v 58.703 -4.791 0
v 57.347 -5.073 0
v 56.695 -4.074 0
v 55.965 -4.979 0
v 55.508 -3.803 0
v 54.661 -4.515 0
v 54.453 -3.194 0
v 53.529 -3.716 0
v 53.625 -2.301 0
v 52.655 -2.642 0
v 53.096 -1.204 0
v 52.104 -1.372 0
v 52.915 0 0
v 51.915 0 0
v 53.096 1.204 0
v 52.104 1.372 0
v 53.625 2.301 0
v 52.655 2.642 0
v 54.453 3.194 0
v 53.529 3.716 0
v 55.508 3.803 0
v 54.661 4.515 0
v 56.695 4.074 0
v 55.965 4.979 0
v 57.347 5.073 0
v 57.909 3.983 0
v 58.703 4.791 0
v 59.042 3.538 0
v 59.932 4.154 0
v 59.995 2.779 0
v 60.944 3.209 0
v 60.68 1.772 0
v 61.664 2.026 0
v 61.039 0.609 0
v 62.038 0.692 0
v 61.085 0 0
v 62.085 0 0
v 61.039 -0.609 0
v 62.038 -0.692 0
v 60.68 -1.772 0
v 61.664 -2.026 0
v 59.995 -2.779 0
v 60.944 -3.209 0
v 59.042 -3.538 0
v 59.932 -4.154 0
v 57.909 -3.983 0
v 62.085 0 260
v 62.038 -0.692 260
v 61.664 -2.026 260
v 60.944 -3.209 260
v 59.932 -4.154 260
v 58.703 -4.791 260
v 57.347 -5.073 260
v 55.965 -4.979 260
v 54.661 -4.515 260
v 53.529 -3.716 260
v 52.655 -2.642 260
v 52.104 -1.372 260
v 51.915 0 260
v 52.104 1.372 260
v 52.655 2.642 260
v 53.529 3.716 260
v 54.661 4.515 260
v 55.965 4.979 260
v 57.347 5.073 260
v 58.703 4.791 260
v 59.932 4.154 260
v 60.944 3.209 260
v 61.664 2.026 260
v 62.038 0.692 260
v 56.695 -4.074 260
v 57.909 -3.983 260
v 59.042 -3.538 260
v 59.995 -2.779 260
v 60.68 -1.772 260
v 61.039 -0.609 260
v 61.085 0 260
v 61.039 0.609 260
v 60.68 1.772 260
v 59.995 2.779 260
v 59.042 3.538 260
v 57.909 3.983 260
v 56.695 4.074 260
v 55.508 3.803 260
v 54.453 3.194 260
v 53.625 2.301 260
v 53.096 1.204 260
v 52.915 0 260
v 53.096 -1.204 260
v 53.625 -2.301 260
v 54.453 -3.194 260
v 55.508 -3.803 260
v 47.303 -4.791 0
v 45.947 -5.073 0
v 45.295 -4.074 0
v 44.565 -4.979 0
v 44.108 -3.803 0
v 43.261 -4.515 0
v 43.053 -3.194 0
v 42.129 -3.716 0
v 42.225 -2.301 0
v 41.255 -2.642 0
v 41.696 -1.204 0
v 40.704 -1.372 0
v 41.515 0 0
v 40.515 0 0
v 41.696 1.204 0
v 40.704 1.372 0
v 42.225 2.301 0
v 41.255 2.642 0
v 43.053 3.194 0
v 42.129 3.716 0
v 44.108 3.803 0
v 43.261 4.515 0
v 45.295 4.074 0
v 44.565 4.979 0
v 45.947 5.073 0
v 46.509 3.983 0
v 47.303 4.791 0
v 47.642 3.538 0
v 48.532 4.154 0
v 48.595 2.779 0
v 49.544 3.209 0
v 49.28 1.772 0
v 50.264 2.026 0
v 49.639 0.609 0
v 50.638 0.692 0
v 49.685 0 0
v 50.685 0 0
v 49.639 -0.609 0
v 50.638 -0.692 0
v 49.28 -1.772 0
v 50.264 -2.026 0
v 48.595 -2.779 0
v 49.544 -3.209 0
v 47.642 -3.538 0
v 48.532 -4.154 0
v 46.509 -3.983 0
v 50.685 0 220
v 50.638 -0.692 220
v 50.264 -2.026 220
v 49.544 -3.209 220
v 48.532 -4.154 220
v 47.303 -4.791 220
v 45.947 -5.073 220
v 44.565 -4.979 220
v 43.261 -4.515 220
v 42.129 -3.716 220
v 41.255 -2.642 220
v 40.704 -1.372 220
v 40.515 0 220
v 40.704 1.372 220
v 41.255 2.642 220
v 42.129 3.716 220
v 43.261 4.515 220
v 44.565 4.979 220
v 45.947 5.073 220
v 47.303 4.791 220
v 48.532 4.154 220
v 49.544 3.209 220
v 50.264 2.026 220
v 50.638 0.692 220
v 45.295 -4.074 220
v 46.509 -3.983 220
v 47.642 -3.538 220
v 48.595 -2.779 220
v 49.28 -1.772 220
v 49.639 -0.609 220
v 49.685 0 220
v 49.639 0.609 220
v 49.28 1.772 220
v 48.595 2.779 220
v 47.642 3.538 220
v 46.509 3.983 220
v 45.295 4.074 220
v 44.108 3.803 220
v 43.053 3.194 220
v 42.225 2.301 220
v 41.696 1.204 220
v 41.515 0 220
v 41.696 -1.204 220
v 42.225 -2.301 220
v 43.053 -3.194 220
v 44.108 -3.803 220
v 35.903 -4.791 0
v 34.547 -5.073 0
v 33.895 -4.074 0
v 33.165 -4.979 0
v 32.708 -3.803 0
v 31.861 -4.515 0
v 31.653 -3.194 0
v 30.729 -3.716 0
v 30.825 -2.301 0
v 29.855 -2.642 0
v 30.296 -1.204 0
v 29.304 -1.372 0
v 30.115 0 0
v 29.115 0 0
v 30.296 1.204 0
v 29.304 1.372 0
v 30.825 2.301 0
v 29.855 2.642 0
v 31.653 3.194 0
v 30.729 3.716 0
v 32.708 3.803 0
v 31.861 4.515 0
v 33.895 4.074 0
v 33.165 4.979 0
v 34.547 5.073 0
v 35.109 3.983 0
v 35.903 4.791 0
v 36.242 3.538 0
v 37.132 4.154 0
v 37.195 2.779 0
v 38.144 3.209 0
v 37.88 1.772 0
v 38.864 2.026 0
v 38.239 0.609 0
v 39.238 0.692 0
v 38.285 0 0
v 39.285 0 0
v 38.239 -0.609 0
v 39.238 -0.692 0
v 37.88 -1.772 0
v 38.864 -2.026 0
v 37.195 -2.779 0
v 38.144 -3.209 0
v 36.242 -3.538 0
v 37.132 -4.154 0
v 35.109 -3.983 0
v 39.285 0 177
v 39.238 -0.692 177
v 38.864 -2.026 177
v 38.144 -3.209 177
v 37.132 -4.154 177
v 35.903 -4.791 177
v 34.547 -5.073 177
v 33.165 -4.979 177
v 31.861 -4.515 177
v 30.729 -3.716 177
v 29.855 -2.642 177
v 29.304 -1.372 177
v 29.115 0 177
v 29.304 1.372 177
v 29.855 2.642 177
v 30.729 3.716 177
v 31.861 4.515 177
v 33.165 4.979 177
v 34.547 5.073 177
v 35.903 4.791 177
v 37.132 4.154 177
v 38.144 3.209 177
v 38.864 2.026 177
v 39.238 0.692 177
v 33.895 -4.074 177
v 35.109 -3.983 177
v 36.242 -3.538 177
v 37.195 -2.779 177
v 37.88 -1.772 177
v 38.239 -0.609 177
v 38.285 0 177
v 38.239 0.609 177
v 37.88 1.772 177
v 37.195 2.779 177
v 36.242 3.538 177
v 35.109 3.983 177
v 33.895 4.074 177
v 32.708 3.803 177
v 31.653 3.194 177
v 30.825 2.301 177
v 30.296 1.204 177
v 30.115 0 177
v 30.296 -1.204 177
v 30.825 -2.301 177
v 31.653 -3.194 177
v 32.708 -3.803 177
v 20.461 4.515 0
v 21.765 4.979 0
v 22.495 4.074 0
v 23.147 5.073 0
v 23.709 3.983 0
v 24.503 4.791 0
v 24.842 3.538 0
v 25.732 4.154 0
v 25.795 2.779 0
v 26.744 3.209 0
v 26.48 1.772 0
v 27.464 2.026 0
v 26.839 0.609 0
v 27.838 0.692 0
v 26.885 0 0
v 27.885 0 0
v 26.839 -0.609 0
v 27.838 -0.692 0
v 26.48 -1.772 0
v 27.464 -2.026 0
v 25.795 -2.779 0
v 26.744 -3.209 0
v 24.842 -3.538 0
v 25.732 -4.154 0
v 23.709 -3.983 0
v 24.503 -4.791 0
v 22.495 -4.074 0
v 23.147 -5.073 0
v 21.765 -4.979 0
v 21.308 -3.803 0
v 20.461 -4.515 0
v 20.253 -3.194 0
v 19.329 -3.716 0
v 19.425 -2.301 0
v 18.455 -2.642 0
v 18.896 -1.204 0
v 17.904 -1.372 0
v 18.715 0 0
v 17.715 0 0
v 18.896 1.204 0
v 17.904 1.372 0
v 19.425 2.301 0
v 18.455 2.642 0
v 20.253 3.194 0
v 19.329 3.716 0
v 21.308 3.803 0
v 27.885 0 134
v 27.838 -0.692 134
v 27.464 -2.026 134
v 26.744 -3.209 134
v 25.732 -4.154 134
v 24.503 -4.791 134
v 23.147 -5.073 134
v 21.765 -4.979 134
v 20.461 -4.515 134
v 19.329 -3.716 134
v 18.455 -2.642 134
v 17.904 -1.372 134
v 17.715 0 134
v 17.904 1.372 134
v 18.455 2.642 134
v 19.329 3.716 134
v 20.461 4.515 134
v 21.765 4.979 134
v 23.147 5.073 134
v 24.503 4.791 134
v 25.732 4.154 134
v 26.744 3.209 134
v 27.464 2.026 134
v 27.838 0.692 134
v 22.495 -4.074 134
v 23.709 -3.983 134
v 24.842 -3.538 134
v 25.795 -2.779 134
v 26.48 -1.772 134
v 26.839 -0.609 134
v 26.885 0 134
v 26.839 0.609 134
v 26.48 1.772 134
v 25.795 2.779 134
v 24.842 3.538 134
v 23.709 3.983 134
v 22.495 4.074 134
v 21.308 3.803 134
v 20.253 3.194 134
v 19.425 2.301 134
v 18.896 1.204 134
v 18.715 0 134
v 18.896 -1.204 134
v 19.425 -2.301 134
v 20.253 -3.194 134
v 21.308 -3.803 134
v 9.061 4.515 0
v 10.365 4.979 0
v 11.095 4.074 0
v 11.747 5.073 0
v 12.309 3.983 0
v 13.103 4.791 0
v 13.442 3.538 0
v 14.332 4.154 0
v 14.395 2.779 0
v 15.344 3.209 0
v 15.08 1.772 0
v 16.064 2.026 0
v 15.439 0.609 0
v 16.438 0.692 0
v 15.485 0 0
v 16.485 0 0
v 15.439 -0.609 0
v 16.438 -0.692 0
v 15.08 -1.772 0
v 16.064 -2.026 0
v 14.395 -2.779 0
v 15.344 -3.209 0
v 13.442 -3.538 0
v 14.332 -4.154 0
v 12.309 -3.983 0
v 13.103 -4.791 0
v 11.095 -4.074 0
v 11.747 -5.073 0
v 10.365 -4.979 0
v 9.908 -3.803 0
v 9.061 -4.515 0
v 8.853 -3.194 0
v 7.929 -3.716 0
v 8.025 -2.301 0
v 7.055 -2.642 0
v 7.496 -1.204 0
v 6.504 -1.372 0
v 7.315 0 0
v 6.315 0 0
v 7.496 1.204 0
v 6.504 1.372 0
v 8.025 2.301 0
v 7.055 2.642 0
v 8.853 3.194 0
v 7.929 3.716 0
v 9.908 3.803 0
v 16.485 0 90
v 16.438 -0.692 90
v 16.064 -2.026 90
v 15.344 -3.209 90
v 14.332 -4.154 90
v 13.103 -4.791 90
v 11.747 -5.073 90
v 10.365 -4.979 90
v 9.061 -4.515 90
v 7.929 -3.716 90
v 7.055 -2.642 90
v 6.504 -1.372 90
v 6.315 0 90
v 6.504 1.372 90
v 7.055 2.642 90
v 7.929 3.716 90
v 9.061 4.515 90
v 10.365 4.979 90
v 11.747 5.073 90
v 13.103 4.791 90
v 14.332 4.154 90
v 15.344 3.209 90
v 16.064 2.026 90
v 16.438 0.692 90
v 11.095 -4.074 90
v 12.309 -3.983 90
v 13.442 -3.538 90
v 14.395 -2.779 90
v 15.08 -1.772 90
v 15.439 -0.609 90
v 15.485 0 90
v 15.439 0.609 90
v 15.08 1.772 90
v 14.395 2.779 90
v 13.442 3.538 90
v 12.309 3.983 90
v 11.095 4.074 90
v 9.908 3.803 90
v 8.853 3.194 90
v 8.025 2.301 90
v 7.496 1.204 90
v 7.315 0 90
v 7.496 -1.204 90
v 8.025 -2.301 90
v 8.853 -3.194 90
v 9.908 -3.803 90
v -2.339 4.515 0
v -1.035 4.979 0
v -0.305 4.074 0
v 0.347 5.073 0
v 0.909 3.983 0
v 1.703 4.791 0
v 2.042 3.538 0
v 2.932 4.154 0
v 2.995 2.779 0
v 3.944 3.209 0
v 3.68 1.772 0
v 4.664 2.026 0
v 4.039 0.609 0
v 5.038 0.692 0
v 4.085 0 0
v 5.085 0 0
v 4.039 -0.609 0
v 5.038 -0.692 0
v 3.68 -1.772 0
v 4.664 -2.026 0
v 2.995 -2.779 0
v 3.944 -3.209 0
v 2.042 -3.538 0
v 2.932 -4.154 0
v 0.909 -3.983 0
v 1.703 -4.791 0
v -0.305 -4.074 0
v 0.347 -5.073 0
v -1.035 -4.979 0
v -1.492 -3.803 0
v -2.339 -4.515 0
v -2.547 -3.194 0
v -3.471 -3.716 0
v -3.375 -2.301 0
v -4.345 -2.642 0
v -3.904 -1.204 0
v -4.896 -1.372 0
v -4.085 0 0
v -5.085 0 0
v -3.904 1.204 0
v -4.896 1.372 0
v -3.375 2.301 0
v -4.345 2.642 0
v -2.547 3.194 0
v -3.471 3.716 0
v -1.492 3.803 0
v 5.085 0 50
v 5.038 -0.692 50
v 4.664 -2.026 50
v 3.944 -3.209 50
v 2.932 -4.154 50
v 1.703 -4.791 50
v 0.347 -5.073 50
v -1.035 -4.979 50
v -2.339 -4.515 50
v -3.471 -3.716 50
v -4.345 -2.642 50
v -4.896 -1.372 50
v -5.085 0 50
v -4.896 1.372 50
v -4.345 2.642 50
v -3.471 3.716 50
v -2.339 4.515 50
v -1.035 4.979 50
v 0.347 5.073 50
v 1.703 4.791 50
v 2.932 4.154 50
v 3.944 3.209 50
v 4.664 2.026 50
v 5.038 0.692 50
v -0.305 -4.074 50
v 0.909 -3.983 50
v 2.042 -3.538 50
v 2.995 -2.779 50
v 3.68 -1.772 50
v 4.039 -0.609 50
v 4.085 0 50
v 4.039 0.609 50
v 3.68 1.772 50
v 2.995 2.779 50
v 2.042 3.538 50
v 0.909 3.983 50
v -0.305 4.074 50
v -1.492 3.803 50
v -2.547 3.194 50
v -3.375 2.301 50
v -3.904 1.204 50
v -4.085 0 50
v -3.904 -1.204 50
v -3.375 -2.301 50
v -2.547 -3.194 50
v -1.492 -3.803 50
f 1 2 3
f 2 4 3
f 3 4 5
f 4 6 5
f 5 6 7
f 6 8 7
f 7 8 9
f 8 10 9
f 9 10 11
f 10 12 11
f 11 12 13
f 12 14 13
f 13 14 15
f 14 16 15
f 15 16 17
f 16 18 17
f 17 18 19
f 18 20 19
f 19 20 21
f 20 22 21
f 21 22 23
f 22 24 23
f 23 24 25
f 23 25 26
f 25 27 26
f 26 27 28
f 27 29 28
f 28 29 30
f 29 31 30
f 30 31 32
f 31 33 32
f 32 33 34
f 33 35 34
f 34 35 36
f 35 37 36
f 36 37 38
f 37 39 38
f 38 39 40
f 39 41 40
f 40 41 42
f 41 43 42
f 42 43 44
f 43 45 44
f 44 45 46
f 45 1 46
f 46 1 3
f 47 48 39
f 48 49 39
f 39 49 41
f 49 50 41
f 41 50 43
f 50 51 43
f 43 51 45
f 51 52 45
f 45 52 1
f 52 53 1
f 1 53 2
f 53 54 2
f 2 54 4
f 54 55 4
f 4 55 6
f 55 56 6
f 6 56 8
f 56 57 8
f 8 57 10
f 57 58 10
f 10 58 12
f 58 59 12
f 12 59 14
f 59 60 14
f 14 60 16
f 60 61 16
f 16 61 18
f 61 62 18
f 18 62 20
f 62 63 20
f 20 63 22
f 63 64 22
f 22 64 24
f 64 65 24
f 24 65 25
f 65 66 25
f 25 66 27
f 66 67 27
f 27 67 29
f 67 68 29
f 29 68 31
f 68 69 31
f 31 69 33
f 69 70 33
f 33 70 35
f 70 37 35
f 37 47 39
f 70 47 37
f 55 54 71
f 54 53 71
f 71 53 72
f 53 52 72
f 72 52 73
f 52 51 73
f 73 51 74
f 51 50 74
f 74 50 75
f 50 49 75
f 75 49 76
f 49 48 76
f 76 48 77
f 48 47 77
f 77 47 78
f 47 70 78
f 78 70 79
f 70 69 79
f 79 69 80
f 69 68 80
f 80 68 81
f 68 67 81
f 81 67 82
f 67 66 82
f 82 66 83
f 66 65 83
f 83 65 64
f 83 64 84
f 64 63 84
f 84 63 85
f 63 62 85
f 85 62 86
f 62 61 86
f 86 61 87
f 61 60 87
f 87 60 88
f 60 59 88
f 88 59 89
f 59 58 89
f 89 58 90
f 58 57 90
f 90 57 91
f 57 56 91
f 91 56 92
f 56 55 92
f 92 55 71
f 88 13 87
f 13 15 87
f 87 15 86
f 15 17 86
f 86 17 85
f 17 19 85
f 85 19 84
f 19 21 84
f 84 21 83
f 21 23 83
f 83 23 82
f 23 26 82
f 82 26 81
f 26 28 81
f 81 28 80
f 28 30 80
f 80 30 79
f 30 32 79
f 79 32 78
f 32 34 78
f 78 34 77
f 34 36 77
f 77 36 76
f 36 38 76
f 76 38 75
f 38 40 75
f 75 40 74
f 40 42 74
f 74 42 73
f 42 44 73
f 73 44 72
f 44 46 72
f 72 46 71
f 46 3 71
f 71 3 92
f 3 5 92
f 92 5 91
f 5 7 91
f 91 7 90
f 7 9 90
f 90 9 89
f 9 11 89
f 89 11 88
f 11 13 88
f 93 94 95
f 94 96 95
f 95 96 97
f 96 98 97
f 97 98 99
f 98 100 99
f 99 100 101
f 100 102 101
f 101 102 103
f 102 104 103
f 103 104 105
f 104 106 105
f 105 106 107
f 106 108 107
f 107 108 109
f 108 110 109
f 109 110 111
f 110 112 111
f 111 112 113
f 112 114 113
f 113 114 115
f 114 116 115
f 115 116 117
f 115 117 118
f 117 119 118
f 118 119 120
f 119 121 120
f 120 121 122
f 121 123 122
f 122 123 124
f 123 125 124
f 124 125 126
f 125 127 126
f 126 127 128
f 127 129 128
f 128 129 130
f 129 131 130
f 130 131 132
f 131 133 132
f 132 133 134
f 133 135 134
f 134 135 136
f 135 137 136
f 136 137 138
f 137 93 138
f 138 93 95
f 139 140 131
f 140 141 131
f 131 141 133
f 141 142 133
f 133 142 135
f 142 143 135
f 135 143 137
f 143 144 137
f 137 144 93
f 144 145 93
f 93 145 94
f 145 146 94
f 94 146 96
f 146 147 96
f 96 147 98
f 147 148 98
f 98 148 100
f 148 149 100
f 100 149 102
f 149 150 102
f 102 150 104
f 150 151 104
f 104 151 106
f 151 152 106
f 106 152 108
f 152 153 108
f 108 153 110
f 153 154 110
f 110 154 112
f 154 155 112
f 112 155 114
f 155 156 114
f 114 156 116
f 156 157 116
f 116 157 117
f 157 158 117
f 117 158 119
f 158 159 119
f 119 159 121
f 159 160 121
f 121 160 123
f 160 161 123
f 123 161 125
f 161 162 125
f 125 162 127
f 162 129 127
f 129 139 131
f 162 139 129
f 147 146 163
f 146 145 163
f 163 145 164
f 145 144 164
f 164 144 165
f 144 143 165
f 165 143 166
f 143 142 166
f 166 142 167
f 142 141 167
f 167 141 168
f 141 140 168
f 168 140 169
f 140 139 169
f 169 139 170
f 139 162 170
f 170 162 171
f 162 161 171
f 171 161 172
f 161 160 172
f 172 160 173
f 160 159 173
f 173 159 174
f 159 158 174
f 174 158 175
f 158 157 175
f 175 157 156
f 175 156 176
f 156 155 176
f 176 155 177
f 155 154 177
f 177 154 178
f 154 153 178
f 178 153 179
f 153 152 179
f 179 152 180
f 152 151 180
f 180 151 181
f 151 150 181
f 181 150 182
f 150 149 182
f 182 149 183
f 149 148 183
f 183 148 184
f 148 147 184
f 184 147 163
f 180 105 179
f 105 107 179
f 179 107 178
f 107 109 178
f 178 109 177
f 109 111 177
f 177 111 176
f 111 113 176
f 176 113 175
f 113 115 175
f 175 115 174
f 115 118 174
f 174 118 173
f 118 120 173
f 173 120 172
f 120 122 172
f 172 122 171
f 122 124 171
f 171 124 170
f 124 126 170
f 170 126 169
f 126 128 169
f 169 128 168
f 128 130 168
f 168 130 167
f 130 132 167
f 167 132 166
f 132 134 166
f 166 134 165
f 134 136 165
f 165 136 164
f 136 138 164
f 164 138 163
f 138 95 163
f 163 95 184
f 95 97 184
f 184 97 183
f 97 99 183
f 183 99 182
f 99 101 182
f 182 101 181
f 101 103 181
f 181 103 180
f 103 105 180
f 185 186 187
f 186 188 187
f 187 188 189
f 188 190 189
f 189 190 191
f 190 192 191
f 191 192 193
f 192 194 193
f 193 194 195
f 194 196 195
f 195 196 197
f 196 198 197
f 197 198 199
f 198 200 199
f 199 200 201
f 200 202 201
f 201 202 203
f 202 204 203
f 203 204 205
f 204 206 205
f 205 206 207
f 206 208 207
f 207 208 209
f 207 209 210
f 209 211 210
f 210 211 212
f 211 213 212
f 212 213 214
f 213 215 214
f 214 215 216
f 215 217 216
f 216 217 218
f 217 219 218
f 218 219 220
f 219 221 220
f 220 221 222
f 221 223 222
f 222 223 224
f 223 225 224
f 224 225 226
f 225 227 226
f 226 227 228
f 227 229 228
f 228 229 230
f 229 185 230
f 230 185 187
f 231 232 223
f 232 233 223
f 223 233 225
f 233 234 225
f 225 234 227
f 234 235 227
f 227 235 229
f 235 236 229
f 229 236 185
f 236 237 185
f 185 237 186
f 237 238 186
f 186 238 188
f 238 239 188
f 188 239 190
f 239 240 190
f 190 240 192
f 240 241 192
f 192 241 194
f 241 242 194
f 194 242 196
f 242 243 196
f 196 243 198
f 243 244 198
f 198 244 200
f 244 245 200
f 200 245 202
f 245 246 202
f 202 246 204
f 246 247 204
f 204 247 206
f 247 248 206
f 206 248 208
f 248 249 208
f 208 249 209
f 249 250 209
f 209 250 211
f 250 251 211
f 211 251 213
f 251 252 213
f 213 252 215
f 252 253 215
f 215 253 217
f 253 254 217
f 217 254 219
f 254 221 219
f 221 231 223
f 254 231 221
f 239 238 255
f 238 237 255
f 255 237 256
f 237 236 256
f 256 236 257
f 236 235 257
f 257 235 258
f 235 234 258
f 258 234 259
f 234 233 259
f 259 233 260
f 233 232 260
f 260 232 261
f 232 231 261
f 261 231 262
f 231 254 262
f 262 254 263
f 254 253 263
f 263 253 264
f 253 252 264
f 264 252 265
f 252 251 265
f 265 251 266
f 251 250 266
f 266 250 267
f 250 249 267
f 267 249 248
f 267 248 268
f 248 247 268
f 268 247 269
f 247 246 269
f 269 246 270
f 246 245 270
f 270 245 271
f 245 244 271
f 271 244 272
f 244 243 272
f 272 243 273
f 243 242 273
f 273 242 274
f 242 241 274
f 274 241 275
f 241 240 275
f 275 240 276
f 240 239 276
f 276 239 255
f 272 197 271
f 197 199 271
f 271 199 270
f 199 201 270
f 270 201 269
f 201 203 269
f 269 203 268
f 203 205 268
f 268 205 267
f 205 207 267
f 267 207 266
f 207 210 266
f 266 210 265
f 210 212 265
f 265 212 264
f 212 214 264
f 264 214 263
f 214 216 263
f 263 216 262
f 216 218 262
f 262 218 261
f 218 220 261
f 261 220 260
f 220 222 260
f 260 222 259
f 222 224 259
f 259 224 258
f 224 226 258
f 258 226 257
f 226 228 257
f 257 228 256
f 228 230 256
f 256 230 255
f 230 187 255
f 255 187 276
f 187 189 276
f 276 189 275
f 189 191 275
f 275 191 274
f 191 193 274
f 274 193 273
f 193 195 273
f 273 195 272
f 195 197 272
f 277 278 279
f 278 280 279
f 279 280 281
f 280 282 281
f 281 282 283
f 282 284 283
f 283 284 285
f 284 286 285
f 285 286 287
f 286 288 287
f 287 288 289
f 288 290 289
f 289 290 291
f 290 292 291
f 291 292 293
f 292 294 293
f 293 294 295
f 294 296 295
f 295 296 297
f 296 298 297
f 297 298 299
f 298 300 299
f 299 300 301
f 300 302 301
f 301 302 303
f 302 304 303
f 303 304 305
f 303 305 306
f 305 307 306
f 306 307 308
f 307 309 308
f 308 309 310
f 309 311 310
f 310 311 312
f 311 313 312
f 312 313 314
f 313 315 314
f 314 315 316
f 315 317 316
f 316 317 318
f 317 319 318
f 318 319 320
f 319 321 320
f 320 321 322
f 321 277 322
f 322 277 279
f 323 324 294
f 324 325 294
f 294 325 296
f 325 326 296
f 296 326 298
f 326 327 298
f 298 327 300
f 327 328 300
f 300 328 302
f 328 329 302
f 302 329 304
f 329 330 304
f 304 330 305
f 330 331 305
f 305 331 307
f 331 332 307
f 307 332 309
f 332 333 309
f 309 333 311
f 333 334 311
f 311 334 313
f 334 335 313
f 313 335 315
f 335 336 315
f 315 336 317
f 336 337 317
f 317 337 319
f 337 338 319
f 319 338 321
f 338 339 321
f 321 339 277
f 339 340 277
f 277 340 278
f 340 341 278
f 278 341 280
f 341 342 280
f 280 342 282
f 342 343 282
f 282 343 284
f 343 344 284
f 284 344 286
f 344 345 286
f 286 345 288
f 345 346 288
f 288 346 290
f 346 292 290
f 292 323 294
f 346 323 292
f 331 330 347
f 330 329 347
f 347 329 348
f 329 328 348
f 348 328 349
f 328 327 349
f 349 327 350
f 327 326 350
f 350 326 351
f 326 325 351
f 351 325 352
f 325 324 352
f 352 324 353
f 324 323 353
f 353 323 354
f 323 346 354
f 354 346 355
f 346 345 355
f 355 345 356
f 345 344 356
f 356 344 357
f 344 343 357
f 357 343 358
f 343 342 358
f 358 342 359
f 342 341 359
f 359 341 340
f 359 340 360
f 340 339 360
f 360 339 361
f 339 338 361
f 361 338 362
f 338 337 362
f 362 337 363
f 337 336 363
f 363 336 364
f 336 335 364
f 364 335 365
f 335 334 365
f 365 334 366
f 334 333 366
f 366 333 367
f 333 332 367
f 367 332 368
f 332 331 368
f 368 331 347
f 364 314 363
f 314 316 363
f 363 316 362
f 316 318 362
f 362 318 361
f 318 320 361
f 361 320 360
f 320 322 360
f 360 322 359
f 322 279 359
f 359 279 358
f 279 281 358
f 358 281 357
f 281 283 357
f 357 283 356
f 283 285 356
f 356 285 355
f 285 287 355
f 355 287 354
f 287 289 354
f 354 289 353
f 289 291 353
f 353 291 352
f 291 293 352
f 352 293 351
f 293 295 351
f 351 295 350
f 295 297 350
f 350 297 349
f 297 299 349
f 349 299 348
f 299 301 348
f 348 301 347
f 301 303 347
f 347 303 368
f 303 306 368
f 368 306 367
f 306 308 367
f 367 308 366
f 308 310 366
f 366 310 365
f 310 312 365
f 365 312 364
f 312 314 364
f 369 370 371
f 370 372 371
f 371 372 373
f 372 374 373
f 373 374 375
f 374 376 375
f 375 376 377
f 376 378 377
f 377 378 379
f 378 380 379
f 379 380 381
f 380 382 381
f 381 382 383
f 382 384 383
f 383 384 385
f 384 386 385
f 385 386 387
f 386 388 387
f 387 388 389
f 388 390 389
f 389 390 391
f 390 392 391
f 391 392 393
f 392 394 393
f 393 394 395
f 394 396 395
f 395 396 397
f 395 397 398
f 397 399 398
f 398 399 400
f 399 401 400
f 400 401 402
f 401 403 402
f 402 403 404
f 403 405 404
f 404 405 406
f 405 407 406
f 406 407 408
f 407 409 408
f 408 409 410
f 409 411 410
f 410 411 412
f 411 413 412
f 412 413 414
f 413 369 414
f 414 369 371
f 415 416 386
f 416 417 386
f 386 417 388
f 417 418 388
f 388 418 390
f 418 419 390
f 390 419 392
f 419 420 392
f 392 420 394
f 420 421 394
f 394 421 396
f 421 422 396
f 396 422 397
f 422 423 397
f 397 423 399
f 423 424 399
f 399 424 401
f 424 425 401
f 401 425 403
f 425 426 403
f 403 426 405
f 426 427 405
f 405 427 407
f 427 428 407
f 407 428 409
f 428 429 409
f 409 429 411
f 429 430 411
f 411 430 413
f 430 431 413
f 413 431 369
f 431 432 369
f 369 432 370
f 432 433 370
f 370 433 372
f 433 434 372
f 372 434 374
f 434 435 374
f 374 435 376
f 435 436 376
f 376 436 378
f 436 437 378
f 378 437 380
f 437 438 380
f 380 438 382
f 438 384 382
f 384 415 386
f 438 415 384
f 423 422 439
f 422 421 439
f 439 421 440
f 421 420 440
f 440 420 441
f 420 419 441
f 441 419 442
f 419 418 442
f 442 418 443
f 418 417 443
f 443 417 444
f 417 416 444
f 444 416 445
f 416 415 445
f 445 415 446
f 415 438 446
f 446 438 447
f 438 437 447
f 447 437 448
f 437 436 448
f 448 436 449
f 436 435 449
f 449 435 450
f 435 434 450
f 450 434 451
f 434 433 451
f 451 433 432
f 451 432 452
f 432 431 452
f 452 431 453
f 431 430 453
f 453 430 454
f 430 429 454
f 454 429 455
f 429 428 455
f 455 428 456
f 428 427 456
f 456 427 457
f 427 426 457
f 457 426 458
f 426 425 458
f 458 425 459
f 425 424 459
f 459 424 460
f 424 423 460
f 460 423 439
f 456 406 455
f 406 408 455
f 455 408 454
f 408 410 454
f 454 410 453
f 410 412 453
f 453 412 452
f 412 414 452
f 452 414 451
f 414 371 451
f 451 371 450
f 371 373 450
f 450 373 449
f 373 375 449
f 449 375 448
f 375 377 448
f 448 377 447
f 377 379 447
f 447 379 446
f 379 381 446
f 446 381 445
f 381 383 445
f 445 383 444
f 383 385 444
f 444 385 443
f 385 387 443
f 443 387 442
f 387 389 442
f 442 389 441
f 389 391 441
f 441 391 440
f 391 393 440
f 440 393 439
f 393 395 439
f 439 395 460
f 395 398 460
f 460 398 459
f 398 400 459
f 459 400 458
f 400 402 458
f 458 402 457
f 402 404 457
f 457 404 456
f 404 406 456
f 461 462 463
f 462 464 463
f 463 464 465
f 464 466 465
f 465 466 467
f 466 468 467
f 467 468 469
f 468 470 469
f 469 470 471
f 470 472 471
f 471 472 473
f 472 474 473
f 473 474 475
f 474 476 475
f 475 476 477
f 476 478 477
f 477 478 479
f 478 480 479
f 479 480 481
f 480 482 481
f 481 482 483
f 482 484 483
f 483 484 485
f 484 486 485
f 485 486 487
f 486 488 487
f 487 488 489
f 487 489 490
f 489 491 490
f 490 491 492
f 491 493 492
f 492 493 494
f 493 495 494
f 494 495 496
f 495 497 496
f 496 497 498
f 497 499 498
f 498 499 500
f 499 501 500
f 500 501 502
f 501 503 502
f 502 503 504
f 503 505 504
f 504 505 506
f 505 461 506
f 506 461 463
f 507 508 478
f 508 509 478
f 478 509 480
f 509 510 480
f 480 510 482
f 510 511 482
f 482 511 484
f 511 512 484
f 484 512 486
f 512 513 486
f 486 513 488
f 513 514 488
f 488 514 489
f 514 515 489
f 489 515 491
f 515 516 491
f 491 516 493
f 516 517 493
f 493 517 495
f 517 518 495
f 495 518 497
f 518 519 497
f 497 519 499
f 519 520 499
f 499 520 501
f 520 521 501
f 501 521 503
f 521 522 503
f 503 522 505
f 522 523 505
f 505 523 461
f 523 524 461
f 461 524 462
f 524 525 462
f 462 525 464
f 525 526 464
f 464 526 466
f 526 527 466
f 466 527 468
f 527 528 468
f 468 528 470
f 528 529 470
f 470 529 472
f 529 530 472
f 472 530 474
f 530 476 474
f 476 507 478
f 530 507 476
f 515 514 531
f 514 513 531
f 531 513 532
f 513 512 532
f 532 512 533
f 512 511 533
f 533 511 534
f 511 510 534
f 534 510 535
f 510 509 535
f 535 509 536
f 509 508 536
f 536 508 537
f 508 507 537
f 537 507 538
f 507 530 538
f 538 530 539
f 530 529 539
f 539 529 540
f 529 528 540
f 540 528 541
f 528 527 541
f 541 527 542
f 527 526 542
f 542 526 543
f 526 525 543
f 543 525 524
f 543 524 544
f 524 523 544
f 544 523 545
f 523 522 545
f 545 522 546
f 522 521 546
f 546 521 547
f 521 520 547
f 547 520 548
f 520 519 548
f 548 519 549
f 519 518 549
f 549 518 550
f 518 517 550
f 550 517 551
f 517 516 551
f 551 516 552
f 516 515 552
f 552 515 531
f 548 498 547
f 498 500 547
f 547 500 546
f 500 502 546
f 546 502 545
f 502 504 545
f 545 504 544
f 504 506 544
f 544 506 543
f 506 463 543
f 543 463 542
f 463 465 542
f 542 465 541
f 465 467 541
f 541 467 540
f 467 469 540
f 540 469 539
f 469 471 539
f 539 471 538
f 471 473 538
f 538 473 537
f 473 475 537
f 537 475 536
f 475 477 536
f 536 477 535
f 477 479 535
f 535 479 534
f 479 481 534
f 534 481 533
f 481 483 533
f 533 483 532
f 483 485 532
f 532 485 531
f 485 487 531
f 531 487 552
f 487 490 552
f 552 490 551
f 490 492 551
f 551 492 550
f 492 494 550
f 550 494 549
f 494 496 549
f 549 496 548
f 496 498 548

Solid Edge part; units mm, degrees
sketch "Sketch1" plane through (0, 0, 0) normal (0, 0, 1) x (1, 0, 0)
  circle A0 centre (0, 0) radius 5.085
  circle A1 centre (0, 0) radius 4.085
extrude "Protrusion1" add sketch "Sketch1" along normal blind 50
sketch "Sketch2" plane through (0, 0, 0) normal (0, 0, 1) x (1, 0, 0)
  circle A0 centre (11.4, 0) radius 5.085
  circle A1 centre (11.4, 0) radius 4.085
extrude "ExtrudedProtrusion_2" add sketch "Sketch2" along normal blind 90
sketch "Sketch3" plane through (0, 0, 0) normal (0, 0, 1) x (1, 0, 0)
  circle A0 centre (22.8, 0) radius 5.085
  circle A1 centre (22.8, 0) radius 4.085
extrude "ExtrudedProtrusion_3" add sketch "Sketch3" along normal blind 134
sketch "Sketch4" plane through (0, 0, 0) normal (0, 0, 1) x (1, 0, 0)
  circle A0 centre (34.2, 0) radius 5.085
  circle A1 centre (34.2, 0) radius 4.085
extrude "ExtrudedProtrusion_4" add sketch "Sketch4" along normal blind 177
sketch "Sketch5" plane through (0, 0, 0) normal (0, 0, 1) x (1, 0, 0)
  circle A0 centre (45.6, 0) radius 5.085
  circle A1 centre (45.6, 0) radius 4.085
extrude "ExtrudedProtrusion_5" add sketch "Sketch5" along normal blind 220
sketch "Sketch6" plane through (0, 0, 0) normal (0, 0, 1) x (1, 0, 0)
  circle A0 centre (57, 0) radius 5.085
  circle A1 centre (57, 0) radius 4.085
extrude "ExtrudedProtrusion_6" add sketch "Sketch6" along normal blind 260
